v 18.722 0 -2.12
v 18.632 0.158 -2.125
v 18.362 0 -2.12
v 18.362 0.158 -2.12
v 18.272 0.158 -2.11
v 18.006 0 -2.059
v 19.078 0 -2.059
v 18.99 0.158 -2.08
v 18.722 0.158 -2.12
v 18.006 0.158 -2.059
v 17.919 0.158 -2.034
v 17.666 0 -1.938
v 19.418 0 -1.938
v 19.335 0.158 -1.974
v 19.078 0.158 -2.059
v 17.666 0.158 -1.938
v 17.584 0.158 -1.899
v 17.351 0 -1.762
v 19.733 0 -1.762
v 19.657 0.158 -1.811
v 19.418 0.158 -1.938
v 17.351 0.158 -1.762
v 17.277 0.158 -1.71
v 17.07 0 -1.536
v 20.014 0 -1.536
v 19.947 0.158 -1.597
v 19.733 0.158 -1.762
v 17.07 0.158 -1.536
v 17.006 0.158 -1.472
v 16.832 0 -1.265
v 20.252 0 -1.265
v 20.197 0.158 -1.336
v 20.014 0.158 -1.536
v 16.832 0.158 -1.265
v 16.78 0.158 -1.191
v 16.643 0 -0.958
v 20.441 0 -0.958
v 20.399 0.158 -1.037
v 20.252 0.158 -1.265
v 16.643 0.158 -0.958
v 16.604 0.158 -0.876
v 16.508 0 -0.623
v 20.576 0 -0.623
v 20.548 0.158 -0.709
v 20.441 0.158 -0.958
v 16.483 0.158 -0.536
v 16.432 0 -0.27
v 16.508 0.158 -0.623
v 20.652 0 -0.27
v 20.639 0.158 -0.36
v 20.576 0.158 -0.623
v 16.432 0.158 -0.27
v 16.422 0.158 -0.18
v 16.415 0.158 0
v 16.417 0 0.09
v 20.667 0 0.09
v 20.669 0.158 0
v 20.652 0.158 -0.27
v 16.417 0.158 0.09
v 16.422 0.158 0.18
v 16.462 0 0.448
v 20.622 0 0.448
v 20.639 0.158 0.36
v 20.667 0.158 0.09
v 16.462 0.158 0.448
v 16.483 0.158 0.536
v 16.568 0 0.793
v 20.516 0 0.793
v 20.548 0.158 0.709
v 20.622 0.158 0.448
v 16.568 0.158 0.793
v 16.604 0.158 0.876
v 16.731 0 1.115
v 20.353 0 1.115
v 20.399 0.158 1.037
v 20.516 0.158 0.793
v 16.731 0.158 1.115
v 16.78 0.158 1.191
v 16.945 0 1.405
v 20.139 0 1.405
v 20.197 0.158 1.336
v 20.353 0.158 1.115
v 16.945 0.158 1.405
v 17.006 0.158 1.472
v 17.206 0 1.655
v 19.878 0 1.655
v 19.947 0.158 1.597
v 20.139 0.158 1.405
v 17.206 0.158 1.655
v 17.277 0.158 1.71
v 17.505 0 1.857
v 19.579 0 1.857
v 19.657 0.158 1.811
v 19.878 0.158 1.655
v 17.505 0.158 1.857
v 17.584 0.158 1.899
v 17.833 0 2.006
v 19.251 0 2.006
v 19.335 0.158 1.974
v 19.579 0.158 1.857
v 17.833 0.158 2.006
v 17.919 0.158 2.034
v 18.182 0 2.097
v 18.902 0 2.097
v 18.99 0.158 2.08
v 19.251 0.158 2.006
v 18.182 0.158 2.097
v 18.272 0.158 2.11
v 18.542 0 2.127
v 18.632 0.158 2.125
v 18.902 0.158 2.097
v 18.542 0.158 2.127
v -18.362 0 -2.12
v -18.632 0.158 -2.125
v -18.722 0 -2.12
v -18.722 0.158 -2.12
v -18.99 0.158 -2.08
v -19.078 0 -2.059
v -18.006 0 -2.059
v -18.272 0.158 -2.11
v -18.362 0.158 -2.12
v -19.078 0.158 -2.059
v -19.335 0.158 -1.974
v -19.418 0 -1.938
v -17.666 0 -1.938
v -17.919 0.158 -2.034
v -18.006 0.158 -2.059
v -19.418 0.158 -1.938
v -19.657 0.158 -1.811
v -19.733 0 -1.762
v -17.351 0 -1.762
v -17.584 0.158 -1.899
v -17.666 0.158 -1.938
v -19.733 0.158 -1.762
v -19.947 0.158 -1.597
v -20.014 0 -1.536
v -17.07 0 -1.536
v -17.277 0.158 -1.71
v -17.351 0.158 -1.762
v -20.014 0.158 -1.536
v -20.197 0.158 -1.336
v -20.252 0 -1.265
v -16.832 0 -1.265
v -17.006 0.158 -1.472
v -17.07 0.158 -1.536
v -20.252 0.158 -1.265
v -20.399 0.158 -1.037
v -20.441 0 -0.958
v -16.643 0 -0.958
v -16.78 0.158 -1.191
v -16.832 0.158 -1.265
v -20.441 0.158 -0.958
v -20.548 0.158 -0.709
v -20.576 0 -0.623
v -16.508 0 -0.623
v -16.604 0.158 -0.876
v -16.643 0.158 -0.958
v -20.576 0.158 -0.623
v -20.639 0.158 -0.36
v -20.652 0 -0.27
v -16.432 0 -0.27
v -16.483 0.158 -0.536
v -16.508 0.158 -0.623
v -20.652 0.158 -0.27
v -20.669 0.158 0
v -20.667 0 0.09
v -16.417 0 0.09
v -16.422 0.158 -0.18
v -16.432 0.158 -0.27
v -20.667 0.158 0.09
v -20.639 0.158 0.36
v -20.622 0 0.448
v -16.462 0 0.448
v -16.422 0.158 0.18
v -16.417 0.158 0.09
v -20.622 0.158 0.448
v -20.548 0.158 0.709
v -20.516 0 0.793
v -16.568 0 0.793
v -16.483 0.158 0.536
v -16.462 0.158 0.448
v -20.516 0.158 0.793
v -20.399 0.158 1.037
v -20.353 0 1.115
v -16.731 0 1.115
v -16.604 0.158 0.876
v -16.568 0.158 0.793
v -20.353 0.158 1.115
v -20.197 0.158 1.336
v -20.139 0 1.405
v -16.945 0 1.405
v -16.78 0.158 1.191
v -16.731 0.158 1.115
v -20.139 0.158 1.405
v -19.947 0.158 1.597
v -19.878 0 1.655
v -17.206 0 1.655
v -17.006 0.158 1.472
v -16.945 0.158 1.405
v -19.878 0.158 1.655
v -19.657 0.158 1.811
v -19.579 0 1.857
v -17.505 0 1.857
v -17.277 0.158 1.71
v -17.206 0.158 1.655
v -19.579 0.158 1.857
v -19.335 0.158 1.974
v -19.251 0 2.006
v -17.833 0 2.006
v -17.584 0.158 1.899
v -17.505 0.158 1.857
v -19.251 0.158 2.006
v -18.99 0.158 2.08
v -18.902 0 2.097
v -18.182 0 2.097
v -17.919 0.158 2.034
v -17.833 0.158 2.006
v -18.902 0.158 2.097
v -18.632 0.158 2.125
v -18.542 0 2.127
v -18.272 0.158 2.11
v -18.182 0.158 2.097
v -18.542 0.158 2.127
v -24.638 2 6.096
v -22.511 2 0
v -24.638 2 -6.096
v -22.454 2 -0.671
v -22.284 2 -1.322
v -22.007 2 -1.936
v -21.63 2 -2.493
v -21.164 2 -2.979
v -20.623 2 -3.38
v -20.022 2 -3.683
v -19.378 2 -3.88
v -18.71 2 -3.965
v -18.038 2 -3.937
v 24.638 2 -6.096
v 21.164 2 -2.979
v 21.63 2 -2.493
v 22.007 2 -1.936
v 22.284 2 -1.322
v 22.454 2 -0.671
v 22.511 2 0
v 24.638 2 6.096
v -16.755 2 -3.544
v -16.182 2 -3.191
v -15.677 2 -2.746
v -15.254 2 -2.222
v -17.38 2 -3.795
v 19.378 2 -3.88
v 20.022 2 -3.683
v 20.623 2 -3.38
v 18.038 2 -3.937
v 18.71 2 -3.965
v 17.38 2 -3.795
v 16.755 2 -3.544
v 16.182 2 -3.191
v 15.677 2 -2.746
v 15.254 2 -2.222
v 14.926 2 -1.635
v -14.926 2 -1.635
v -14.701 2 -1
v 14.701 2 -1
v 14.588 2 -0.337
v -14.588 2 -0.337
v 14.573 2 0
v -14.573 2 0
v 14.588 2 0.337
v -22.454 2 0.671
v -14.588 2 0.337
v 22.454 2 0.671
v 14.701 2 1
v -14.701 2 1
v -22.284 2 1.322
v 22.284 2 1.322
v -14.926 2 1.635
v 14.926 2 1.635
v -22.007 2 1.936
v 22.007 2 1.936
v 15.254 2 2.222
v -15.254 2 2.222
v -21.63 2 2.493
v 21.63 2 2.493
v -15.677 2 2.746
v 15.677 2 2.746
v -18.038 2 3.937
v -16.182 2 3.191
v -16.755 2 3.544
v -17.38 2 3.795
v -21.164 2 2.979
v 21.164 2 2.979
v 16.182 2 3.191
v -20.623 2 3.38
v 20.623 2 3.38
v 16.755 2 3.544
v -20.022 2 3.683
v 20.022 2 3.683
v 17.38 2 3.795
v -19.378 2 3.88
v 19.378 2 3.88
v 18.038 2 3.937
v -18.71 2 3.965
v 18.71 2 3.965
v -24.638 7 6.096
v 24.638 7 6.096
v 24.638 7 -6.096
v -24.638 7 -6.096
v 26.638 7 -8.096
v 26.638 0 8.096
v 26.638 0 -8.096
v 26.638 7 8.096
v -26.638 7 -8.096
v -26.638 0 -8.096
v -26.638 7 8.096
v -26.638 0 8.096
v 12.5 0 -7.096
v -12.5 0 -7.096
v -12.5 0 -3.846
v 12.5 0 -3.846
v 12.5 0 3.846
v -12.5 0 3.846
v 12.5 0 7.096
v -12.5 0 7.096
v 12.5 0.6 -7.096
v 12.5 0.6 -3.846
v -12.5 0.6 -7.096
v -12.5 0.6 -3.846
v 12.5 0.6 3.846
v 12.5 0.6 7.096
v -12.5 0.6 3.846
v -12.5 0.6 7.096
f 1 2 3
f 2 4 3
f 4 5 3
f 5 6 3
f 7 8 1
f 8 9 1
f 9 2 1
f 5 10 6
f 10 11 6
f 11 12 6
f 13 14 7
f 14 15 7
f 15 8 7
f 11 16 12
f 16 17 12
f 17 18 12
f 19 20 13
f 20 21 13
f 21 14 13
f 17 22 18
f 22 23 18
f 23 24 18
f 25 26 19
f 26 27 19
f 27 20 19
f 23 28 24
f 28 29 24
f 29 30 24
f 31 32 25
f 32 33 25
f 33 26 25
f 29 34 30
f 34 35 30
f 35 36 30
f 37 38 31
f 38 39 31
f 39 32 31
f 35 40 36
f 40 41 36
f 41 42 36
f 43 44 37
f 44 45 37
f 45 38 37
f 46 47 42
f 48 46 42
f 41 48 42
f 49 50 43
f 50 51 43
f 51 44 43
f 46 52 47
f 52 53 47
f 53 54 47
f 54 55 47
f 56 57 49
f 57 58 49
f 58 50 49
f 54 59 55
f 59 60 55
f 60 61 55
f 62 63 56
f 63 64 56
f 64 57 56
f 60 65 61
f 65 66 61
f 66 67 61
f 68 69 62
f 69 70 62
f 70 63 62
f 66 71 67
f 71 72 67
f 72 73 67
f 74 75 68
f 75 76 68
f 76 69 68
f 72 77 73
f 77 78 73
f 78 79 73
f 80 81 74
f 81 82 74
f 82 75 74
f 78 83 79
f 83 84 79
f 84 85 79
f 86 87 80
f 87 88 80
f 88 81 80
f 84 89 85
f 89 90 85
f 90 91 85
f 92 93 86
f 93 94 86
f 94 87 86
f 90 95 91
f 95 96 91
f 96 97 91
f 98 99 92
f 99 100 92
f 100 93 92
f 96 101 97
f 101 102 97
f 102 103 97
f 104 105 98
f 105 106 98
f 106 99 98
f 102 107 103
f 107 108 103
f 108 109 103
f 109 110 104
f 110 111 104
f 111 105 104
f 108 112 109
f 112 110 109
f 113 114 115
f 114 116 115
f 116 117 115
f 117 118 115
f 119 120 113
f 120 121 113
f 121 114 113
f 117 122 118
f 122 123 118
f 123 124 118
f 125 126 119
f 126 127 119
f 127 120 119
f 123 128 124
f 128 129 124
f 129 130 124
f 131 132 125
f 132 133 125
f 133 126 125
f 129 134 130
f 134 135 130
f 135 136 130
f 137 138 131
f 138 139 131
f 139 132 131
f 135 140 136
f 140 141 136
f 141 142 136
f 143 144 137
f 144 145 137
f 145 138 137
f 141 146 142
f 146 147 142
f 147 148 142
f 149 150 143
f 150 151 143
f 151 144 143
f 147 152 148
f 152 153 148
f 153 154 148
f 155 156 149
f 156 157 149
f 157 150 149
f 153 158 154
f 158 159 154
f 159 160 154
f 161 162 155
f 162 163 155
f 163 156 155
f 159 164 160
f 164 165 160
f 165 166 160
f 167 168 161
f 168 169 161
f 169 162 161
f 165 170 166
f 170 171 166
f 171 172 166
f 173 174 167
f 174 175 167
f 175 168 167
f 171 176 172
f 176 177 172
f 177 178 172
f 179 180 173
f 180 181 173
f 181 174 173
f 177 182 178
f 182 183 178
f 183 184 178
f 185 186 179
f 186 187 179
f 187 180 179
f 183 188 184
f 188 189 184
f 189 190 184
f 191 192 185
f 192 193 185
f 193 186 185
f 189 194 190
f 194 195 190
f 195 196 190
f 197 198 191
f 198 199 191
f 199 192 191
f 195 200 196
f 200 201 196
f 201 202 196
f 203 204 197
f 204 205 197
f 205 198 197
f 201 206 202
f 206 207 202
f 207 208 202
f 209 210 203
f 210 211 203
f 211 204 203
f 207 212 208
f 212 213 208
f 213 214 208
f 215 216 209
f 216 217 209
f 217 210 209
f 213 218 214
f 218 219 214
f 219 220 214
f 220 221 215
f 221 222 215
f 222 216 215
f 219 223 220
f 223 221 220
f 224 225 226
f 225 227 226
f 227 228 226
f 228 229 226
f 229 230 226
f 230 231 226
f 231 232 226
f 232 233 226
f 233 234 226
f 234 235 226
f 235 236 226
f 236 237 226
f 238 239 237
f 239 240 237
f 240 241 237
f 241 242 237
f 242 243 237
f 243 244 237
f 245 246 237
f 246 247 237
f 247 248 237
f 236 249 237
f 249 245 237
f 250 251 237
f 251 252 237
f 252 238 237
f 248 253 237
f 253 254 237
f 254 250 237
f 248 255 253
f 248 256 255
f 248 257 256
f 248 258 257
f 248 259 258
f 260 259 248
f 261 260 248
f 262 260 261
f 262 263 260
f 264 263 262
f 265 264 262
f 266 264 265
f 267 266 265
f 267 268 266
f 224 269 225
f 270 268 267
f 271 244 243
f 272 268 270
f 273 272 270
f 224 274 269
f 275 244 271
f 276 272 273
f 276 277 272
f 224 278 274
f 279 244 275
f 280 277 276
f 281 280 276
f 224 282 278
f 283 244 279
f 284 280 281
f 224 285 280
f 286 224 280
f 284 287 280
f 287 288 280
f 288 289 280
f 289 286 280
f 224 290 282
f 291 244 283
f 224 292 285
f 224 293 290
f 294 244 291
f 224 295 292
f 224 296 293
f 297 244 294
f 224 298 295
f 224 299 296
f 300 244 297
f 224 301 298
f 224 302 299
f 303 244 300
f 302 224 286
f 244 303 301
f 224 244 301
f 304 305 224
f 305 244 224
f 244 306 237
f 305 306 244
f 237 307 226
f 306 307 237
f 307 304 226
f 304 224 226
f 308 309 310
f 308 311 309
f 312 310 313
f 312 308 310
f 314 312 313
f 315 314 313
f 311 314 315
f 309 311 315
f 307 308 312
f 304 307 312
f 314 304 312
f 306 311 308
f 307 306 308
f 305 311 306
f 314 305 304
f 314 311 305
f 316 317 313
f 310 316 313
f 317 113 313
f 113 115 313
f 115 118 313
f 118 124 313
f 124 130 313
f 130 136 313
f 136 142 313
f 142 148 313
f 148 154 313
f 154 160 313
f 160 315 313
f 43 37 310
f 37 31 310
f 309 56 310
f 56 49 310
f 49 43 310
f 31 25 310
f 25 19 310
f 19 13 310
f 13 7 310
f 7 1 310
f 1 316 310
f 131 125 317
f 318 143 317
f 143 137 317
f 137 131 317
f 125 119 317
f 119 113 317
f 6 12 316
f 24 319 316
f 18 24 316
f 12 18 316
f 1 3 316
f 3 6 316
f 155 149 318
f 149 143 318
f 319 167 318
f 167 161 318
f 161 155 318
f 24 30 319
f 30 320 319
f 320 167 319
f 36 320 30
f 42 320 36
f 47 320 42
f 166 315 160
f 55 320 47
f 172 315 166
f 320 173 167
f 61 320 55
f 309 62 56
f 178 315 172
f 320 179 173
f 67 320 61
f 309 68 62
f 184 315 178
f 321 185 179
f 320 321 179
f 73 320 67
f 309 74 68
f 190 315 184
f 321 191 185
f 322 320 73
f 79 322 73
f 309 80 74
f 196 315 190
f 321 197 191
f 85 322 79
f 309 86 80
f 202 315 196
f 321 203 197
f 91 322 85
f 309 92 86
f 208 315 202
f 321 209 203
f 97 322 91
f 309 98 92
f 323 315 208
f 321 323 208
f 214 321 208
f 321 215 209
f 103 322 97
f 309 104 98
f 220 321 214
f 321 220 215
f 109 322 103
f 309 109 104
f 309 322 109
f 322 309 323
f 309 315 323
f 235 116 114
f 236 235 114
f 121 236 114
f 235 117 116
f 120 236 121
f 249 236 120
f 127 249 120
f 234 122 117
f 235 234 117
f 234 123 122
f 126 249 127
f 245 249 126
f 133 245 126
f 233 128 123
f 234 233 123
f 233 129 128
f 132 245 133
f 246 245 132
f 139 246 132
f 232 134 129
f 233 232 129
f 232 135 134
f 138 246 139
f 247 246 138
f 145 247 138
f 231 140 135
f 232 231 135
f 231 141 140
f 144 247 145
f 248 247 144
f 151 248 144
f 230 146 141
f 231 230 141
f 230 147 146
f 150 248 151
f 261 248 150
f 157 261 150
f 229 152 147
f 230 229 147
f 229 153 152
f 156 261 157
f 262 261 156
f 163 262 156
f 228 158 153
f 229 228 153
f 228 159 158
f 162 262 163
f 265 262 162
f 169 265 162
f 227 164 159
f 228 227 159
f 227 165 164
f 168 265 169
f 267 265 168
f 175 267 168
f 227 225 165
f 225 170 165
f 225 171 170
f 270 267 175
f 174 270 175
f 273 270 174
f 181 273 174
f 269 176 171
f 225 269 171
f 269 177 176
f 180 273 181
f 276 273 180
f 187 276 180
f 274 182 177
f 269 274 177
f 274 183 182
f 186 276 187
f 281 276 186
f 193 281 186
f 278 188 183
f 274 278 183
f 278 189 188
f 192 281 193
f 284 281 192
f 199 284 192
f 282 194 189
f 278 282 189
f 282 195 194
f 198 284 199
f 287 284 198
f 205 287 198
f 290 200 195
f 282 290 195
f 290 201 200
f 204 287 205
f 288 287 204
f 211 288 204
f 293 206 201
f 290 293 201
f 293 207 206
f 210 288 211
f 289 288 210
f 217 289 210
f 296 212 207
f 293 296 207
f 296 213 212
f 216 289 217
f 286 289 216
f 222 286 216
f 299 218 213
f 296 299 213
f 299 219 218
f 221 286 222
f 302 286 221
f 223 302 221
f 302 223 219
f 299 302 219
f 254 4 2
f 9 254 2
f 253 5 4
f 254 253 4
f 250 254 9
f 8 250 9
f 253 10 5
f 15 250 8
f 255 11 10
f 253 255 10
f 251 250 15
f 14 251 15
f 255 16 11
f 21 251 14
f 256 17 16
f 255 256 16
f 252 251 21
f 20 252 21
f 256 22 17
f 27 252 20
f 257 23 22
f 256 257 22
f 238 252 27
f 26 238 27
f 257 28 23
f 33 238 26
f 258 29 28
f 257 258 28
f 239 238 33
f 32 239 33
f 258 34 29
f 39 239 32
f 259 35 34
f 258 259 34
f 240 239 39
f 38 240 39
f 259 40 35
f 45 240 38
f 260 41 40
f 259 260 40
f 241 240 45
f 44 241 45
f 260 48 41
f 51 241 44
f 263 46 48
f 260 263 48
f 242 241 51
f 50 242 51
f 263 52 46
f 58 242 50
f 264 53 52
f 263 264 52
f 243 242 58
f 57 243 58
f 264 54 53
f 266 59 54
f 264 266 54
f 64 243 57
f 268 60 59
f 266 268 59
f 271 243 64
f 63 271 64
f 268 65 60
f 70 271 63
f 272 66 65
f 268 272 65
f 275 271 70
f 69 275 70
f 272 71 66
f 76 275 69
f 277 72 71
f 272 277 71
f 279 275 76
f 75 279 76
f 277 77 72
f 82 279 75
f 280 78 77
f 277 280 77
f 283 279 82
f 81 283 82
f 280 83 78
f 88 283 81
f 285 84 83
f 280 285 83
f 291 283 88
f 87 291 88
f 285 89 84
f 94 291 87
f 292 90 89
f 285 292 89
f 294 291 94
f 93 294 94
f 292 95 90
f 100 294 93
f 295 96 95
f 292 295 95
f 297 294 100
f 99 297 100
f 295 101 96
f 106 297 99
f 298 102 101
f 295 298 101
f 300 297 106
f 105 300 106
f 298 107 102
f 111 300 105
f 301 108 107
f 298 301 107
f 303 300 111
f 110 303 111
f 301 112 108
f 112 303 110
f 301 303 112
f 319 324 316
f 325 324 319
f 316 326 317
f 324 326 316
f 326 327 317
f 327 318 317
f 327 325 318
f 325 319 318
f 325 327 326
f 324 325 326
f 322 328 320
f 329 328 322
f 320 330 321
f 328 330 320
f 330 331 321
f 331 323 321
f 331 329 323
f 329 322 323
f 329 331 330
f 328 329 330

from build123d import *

# Parameters (mm, degrees)
SKETCH1_W           = 49.276
SKETCH1_H           = 12.192
BOSS_EXTRUDE1_DEPTH = 2
SKETCH2_W           = 53.276
SKETCH2_H           = 16.192
SKETCH2_W_2         = 49.276
SKETCH2_H_2         = 12.192
BOSS_EXTRUDE2_DEPTH = 7
SKETCH3_R           = 2.12725
CUT_EXTRUDE1_DEPTH  = 3
SKETCH5_W           = 25
SKETCH5_H           = 3.25
CUT_EXTRUDE2_DEPTH  = 0.6


with BuildPart() as part:
    # Sketch1 → Boss-Extrude1 (new body)
    with BuildSketch(Plane(origin=(0, 0, 0), x_dir=(1, 0, 0), z_dir=(0, 1, 0))):
        Rectangle(SKETCH1_W, SKETCH1_H)
    extrude(amount=BOSS_EXTRUDE1_DEPTH)

    # Sketch2 → Boss-Extrude2 (add)
    with BuildSketch(Plane(origin=(0, 0, 0), x_dir=(1, 0, 0), z_dir=(0, 1, 0))):
        Rectangle(SKETCH2_W, SKETCH2_H)
        Rectangle(SKETCH2_W_2, SKETCH2_H_2, mode=Mode.SUBTRACT)
    extrude(amount=BOSS_EXTRUDE2_DEPTH)

    # Sketch3 → Cut-Extrude1 (cut, through all)
    with BuildSketch(Plane(origin=(0, 2, 0), x_dir=(1, 0, 0), z_dir=(0, 1, 0))):
        with Locations((-18.542, 0)):
            Circle(SKETCH3_R)
    cut_extrude1 = extrude(amount=-CUT_EXTRUDE1_DEPTH, mode=Mode.SUBTRACT)

    # Sketch4 → Cut-Revolve1 (revolve, cut)
    with BuildSketch(Plane(origin=(0, 0, 0), x_dir=(-1, 0, 0), z_dir=(0, 0, -1))):
        Polygon((18.542, 1), (18.542, 2), (14.57325, 2), (18.542, -1.96875), align=None)
    cut_revolve1 = revolve(axis=Axis((-18.542, 2, 0), (0, 1, 0)), mode=Mode.SUBTRACT)

    # Mirror1: Cut-Extrude1, Cut-Revolve1 across plane
    add(cut_extrude1.mirror(Plane(origin=(0, 0, 0), x_dir=(0, 0, 1), z_dir=(1, 0, 0))), mode=Mode.SUBTRACT)
    add(cut_revolve1.mirror(Plane(origin=(0, 0, 0), x_dir=(0, 0, 1), z_dir=(1, 0, 0))), mode=Mode.SUBTRACT)

    # Sketch5 → Cut-Extrude2 (cut)
    with BuildSketch(Plane(origin=(0, 0, 0), x_dir=(-1, 0, 0), z_dir=(0, -1, 0))):
        with Locations((0, -5.471)):
            Rectangle(SKETCH5_W, SKETCH5_H)
        with Locations((0, 5.471)):
            Rectangle(SKETCH5_W, SKETCH5_H)
    extrude(amount=-CUT_EXTRUDE2_DEPTH, mode=Mode.SUBTRACT)


solid = part.part
